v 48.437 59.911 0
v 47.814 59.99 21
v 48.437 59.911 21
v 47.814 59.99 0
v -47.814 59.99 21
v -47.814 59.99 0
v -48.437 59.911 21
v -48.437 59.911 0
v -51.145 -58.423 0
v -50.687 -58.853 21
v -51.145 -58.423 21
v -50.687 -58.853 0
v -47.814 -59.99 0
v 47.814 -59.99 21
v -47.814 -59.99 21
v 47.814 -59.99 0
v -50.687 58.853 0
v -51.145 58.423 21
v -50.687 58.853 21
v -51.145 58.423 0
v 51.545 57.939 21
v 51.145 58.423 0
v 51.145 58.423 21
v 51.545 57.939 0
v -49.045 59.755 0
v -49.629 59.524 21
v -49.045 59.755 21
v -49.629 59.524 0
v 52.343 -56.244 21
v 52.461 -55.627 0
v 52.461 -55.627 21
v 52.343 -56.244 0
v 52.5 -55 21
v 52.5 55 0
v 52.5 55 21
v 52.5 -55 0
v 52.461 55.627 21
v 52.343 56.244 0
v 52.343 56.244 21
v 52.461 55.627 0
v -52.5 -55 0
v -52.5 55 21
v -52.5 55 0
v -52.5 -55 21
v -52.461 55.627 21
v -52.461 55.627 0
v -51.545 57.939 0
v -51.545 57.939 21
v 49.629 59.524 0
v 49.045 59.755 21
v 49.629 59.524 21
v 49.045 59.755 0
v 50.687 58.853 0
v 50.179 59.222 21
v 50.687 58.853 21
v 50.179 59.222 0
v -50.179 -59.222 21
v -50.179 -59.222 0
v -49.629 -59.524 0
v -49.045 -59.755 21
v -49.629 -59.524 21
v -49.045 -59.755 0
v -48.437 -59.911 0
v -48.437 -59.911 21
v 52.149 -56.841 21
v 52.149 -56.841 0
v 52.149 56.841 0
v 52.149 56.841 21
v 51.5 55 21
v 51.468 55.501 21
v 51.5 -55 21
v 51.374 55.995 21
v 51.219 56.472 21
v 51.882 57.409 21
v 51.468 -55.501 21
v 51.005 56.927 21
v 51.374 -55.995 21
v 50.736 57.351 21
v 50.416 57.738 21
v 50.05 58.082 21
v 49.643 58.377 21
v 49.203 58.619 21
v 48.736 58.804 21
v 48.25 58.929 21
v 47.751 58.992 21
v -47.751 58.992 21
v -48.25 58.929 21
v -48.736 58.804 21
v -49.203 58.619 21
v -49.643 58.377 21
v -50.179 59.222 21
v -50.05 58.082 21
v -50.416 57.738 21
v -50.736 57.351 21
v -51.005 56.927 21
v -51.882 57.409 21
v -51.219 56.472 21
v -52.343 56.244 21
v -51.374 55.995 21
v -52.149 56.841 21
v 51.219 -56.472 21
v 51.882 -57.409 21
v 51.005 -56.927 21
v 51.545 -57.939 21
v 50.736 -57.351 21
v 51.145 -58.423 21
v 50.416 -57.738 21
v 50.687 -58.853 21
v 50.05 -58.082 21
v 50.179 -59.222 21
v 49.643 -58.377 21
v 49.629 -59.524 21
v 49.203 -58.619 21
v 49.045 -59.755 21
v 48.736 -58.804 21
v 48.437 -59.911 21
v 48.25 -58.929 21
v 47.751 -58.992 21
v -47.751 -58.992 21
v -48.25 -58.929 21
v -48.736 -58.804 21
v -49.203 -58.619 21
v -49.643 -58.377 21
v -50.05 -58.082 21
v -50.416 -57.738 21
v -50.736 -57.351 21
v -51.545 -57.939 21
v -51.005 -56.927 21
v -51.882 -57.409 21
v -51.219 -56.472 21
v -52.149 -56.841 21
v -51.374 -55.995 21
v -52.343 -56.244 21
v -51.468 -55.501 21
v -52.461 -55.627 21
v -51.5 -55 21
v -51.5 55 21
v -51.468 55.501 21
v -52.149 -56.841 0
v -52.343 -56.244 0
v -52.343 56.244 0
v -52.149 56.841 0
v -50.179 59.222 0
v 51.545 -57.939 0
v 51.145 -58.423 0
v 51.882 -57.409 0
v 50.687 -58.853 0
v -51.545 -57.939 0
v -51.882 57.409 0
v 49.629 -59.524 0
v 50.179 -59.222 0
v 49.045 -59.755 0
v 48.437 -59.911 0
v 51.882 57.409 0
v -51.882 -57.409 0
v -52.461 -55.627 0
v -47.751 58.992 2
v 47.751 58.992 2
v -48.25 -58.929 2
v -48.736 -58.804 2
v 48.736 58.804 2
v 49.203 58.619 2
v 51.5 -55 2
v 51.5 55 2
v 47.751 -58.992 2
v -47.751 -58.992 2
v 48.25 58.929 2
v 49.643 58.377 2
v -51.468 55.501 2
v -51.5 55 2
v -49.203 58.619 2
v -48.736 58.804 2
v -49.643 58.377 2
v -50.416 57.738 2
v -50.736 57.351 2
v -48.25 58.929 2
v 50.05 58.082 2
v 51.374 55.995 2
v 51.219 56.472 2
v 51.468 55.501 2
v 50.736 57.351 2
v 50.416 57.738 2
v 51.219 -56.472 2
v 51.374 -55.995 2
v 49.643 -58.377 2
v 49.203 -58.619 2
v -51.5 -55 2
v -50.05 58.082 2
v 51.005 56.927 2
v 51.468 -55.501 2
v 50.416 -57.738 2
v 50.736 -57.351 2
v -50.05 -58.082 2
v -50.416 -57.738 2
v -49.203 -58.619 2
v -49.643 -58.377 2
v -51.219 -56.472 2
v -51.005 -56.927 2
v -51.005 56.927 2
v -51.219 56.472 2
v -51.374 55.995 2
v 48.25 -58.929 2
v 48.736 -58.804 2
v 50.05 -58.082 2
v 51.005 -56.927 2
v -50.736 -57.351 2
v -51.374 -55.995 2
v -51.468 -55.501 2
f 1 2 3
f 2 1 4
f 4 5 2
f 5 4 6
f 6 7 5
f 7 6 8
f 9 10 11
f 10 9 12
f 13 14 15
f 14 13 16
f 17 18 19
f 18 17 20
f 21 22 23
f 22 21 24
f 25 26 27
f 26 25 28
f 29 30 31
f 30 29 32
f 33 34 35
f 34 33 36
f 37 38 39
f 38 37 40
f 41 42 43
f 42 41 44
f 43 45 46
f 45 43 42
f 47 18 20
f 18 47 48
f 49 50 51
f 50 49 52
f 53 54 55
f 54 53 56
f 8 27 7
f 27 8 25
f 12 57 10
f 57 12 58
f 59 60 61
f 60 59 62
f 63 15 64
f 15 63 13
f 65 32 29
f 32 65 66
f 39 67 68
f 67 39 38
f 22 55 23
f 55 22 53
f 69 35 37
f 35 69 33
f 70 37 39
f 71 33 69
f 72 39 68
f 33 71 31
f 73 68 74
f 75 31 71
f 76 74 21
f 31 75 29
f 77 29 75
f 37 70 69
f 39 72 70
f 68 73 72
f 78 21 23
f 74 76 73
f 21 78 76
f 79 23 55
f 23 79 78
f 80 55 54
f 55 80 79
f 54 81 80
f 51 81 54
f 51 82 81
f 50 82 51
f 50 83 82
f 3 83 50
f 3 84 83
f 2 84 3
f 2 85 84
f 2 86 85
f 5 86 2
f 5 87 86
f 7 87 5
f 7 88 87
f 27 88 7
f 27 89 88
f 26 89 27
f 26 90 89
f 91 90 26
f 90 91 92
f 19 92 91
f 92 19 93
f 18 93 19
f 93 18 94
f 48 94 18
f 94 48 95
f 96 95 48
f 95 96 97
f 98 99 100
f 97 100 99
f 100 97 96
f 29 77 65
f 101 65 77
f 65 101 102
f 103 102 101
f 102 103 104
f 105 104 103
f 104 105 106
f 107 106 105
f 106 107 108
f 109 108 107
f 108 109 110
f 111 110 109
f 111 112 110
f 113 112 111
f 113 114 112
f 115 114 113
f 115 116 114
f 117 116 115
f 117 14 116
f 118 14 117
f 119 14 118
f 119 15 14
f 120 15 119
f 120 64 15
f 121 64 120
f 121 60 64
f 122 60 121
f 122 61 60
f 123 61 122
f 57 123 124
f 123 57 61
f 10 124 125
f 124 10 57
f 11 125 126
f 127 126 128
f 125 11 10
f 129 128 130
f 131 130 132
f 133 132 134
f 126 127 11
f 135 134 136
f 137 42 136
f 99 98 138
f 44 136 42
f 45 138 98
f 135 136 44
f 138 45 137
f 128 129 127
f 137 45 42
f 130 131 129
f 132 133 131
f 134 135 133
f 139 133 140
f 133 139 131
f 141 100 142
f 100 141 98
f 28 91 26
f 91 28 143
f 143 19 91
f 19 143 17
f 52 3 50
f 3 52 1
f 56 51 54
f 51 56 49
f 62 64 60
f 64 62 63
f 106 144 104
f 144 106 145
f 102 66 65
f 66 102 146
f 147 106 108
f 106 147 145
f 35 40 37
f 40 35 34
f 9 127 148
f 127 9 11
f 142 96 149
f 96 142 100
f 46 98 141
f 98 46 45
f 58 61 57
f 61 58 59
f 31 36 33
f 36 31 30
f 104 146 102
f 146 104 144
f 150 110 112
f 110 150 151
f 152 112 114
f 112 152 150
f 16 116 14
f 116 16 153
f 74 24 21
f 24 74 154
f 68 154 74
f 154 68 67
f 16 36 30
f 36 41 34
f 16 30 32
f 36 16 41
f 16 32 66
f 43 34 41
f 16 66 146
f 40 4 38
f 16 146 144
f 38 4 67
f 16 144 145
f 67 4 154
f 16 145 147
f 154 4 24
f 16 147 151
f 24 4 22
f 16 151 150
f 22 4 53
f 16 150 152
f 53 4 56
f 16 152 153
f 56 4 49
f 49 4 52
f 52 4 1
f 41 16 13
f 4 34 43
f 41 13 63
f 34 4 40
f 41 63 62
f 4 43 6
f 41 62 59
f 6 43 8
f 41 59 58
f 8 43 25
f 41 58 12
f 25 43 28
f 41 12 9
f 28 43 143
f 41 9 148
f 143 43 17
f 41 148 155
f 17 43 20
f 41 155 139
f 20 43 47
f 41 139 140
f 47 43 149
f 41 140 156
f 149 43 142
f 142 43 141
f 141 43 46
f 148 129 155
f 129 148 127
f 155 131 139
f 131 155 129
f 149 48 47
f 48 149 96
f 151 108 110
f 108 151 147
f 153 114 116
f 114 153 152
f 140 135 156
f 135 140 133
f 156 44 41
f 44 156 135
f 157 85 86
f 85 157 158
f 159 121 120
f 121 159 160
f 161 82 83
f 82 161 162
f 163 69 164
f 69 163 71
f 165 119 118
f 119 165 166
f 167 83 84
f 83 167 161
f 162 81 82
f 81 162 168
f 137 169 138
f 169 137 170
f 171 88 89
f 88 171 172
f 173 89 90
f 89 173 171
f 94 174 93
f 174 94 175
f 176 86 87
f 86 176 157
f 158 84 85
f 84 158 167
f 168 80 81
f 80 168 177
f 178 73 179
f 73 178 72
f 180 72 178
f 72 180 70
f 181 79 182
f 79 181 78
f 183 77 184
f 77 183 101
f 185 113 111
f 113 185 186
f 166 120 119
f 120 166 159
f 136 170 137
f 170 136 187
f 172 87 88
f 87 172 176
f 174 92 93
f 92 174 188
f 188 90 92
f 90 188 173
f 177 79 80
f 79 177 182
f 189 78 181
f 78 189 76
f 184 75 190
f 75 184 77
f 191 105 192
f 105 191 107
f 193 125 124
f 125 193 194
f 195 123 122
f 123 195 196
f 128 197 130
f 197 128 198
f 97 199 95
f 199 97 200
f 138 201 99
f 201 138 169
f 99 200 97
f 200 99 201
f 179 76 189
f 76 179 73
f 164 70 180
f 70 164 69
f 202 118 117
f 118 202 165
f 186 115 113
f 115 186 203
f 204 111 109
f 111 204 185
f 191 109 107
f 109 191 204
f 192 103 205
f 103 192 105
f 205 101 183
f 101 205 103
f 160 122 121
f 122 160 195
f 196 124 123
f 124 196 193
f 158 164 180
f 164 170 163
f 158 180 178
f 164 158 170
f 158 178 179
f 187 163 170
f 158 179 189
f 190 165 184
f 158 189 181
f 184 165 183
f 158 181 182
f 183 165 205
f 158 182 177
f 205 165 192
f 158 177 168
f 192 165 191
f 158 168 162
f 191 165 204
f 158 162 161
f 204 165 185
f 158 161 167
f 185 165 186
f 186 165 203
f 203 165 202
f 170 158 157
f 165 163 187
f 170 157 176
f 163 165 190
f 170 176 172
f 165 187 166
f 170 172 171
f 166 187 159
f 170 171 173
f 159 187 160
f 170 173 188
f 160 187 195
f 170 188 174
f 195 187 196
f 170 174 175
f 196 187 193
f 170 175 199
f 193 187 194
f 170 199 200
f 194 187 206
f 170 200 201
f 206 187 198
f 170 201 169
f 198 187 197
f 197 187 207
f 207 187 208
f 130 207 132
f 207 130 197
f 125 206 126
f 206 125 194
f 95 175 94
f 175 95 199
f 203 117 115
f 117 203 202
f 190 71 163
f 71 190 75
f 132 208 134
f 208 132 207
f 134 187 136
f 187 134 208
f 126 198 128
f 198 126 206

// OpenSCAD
$fn = 50;


difference() {
	union() {
		hull() {
			translate(v = [-47.5000000000, 55.0000000000, 0]) {
				cylinder(h = 21, r = 5);
			}
			translate(v = [47.5000000000, 55.0000000000, 0]) {
				cylinder(h = 21, r = 5);
			}
			translate(v = [-47.5000000000, -55.0000000000, 0]) {
				cylinder(h = 21, r = 5);
			}
			translate(v = [47.5000000000, -55.0000000000, 0]) {
				cylinder(h = 21, r = 5);
			}
		}
	}
	union() {
		translate(v = [0, 0, 2]) {
			hull() {
				translate(v = [-47.5000000000, 55.0000000000, 0]) {
					cylinder(h = 19, r = 4);
				}
				translate(v = [47.5000000000, 55.0000000000, 0]) {
					cylinder(h = 19, r = 4);
				}
				translate(v = [-47.5000000000, -55.0000000000, 0]) {
					cylinder(h = 19, r = 4);
				}
				translate(v = [47.5000000000, -55.0000000000, 0]) {
					cylinder(h = 19, r = 4);
				}
			}
		}
	}
}
